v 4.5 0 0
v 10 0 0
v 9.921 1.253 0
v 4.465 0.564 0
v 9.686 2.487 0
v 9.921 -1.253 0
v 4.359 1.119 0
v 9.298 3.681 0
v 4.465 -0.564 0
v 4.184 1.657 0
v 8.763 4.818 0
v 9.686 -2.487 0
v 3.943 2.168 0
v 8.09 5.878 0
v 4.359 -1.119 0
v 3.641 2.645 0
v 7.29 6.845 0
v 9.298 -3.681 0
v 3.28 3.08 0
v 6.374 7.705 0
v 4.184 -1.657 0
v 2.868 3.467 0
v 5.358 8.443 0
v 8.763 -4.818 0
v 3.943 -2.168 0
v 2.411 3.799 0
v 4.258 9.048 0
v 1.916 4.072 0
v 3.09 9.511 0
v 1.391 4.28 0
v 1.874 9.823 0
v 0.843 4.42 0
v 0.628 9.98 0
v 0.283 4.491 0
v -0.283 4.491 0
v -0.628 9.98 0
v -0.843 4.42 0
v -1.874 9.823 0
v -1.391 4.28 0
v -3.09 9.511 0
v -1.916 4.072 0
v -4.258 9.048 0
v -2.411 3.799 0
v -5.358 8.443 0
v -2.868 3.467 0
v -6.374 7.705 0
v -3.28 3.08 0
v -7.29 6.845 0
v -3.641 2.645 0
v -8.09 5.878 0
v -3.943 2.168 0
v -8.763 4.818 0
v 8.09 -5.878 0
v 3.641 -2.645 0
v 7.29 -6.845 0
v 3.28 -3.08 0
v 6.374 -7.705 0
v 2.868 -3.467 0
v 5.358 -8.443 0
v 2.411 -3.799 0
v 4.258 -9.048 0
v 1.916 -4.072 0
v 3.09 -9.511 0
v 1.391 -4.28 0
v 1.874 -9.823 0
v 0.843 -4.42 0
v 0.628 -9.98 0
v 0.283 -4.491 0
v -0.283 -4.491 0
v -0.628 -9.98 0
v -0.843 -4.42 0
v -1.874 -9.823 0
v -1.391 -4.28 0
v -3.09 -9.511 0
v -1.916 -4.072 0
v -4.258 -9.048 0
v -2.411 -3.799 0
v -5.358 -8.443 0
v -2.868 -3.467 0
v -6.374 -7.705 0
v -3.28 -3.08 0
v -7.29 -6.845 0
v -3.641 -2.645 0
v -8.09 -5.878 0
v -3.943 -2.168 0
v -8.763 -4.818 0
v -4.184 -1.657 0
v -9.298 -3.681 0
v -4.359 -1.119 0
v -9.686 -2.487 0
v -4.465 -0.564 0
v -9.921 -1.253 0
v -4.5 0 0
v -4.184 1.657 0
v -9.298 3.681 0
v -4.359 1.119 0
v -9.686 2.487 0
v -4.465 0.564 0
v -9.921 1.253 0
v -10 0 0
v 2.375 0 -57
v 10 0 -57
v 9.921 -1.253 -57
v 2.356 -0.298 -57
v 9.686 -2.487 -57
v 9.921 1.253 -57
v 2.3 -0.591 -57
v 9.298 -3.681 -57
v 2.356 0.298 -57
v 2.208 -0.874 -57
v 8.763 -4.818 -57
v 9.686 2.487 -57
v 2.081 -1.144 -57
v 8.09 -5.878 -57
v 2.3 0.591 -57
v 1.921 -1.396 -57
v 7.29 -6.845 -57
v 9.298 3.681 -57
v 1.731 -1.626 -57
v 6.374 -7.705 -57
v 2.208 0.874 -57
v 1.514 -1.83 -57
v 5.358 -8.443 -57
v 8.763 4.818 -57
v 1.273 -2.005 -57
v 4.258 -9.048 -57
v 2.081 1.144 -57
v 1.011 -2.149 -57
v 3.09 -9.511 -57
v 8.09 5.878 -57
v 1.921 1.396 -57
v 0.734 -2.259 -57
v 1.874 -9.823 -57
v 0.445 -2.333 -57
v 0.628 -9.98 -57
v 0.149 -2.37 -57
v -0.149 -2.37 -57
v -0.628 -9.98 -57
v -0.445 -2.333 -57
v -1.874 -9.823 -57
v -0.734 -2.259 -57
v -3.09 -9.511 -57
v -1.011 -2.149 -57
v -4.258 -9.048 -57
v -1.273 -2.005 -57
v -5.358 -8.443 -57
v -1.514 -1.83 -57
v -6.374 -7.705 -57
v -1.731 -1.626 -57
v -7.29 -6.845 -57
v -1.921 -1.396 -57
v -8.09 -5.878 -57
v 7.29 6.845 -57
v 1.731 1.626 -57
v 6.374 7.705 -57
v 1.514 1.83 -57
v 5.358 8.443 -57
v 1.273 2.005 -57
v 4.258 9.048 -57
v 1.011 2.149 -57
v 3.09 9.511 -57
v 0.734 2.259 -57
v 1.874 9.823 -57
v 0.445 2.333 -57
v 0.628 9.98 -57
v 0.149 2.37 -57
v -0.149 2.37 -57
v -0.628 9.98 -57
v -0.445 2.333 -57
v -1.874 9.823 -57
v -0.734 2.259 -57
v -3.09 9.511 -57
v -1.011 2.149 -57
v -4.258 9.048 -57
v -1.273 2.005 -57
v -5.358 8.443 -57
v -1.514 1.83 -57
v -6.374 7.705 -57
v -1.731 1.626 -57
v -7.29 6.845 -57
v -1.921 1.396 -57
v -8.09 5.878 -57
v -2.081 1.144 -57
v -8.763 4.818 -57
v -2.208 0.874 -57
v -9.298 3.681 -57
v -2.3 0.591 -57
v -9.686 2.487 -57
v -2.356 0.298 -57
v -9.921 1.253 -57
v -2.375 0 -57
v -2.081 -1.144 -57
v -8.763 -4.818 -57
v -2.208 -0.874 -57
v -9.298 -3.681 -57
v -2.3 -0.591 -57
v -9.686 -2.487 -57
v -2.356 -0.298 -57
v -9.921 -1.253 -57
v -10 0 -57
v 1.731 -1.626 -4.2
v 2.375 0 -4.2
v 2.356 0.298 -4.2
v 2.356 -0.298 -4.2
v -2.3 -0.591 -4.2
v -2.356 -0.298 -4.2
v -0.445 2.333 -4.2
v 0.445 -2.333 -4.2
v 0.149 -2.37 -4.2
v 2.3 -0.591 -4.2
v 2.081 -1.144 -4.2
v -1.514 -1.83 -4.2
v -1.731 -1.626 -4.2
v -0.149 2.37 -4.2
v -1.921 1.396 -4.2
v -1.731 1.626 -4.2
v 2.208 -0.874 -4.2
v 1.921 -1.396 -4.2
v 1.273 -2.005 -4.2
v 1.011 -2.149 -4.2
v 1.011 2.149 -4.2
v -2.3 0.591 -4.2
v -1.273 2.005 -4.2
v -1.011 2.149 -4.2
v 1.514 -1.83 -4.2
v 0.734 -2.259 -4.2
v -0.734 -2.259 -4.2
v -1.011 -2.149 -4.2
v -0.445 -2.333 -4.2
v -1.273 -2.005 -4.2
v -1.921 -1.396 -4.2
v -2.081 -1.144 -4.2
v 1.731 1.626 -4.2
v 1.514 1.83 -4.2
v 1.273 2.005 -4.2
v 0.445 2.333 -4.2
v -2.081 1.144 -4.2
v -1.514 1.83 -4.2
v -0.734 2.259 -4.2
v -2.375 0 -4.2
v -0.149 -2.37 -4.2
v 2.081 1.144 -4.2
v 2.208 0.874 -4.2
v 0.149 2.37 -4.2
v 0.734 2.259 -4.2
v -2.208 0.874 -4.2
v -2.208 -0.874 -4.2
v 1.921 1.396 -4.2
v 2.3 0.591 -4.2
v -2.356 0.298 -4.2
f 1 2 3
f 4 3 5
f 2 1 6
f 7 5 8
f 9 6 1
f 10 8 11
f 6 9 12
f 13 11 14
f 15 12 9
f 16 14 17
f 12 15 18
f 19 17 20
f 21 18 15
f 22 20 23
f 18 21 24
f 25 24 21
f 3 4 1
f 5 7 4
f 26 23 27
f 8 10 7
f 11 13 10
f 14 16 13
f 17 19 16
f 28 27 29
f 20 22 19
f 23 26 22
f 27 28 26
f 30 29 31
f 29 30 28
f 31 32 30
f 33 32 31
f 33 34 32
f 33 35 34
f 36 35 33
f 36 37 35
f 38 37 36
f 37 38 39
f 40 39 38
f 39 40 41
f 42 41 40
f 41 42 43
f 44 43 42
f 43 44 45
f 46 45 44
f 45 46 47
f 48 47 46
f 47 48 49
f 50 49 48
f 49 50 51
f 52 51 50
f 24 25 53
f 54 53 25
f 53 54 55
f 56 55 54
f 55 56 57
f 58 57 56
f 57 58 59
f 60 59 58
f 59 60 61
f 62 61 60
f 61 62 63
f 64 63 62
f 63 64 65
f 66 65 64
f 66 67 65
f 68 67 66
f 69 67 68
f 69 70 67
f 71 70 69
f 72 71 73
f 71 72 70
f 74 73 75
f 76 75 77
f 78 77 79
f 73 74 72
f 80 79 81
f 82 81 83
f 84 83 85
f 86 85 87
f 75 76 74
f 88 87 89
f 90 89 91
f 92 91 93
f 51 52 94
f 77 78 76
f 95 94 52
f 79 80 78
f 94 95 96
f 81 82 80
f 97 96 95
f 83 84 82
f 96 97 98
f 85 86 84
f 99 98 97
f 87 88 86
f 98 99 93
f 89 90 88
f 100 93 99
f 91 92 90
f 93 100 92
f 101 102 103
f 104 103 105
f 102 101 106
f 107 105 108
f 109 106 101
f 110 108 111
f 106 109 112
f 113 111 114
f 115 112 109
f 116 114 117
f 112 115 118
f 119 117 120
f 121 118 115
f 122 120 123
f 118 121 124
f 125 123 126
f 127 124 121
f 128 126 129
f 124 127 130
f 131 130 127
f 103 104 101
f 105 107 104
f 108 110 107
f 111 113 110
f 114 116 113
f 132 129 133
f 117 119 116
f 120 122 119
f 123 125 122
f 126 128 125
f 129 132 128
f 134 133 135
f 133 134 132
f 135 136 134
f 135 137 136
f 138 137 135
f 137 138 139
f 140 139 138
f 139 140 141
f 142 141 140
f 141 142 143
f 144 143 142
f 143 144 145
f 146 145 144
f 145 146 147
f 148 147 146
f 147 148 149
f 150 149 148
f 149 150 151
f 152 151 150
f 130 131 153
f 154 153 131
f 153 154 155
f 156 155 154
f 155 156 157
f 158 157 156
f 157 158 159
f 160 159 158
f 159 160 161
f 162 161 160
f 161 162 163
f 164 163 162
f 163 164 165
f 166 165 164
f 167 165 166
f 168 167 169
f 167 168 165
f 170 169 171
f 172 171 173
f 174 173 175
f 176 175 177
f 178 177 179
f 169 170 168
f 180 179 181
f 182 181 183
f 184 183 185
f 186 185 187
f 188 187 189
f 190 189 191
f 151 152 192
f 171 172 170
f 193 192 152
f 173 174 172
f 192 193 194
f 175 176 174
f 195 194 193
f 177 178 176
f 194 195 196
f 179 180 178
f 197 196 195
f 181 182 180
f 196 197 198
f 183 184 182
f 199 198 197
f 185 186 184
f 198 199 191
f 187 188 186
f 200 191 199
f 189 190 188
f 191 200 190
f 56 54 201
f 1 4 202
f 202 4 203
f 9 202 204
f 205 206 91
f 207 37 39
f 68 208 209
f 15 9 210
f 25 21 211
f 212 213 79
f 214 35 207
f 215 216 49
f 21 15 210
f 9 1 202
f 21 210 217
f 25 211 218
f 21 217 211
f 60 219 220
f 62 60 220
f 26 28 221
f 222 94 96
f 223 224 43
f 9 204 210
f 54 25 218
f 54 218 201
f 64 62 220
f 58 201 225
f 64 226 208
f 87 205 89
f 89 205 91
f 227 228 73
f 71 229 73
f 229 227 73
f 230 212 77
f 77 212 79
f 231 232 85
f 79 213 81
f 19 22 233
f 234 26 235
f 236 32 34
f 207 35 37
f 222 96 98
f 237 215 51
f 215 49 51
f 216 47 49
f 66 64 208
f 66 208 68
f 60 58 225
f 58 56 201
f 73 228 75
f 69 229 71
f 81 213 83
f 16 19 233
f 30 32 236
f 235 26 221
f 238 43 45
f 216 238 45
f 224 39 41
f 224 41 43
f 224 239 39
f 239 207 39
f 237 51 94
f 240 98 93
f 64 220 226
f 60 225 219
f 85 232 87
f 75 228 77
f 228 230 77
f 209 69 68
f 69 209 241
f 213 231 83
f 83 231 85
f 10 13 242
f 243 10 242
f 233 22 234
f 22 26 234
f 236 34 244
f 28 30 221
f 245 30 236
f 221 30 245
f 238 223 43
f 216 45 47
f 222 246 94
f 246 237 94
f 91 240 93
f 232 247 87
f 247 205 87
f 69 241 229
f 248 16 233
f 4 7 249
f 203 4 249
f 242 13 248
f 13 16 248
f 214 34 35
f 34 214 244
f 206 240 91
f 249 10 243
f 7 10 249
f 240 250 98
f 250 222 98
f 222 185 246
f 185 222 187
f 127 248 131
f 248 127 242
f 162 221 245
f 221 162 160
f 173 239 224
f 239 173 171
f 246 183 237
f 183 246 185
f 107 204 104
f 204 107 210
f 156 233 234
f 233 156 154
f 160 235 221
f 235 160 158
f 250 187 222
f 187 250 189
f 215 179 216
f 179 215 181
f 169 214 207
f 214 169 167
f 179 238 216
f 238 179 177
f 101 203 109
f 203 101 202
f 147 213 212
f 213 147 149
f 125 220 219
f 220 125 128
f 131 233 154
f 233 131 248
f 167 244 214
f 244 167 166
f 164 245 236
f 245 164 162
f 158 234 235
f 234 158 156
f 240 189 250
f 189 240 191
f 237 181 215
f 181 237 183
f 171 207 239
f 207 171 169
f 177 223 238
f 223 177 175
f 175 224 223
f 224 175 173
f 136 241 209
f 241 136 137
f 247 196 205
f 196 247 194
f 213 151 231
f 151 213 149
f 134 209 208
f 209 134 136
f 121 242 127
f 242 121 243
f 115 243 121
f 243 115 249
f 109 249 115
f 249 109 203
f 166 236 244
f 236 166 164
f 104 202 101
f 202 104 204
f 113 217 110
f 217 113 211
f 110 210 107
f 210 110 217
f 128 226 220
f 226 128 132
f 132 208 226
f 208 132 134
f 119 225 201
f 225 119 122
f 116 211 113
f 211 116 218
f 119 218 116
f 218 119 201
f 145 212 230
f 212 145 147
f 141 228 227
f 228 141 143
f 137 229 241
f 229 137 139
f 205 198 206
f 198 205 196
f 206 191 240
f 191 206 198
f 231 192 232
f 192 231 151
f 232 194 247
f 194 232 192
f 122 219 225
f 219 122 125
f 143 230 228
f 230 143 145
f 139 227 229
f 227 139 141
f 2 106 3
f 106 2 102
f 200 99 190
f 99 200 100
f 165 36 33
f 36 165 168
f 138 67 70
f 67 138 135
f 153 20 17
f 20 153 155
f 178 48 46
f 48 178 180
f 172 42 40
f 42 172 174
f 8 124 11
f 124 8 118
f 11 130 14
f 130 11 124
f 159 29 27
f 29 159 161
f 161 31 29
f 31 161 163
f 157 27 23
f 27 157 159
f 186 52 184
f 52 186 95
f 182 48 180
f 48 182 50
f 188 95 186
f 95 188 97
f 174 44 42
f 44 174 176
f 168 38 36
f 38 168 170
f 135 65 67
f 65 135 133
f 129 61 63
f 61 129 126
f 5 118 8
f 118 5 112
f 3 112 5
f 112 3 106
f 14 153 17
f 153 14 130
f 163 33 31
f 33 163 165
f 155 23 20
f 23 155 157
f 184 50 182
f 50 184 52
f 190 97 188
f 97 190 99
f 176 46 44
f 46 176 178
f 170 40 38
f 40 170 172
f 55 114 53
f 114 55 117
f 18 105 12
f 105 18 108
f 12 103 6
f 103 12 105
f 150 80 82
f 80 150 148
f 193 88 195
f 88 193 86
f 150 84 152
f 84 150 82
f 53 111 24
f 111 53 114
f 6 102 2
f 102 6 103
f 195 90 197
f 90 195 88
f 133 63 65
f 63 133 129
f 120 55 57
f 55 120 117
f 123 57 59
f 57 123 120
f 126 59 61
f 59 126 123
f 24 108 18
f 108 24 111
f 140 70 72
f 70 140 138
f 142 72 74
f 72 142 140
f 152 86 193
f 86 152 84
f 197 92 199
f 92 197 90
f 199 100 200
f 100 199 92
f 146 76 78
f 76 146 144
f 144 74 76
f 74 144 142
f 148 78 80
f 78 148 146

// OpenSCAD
$fn = 50;


difference() {
	union() {
		translate(v = [0, 0, -57.0000000000]) {
			cylinder(h = 57, r = 10.0000000000);
		}
		cylinder(h = 0, r = 16.0000000000);
	}
	union() {
		translate(v = [0, 0, 0]) {
			rotate(a = [0, 0, 0]) {
				difference() {
					union() {
						#translate(v = [0, 0, -57.0000000000]) {
							cylinder(h = 57, r = 2.2500000000);
						}
						#translate(v = [0, 0, -4.2000000000]) {
							cylinder(h = 4.2000000000, r = 10.0000000000, r1 = 2.3750000000, r2 = 4.5000000000);
						}
						#translate(v = [0, 0, -57.0000000000]) {
							cylinder(h = 57, r = 2.3750000000);
						}
						#translate(v = [0, 0, -57.0000000000]) {
							cylinder(h = 57, r = 2.2500000000);
						}
					}
					union();
				}
			}
		}
	}
}
